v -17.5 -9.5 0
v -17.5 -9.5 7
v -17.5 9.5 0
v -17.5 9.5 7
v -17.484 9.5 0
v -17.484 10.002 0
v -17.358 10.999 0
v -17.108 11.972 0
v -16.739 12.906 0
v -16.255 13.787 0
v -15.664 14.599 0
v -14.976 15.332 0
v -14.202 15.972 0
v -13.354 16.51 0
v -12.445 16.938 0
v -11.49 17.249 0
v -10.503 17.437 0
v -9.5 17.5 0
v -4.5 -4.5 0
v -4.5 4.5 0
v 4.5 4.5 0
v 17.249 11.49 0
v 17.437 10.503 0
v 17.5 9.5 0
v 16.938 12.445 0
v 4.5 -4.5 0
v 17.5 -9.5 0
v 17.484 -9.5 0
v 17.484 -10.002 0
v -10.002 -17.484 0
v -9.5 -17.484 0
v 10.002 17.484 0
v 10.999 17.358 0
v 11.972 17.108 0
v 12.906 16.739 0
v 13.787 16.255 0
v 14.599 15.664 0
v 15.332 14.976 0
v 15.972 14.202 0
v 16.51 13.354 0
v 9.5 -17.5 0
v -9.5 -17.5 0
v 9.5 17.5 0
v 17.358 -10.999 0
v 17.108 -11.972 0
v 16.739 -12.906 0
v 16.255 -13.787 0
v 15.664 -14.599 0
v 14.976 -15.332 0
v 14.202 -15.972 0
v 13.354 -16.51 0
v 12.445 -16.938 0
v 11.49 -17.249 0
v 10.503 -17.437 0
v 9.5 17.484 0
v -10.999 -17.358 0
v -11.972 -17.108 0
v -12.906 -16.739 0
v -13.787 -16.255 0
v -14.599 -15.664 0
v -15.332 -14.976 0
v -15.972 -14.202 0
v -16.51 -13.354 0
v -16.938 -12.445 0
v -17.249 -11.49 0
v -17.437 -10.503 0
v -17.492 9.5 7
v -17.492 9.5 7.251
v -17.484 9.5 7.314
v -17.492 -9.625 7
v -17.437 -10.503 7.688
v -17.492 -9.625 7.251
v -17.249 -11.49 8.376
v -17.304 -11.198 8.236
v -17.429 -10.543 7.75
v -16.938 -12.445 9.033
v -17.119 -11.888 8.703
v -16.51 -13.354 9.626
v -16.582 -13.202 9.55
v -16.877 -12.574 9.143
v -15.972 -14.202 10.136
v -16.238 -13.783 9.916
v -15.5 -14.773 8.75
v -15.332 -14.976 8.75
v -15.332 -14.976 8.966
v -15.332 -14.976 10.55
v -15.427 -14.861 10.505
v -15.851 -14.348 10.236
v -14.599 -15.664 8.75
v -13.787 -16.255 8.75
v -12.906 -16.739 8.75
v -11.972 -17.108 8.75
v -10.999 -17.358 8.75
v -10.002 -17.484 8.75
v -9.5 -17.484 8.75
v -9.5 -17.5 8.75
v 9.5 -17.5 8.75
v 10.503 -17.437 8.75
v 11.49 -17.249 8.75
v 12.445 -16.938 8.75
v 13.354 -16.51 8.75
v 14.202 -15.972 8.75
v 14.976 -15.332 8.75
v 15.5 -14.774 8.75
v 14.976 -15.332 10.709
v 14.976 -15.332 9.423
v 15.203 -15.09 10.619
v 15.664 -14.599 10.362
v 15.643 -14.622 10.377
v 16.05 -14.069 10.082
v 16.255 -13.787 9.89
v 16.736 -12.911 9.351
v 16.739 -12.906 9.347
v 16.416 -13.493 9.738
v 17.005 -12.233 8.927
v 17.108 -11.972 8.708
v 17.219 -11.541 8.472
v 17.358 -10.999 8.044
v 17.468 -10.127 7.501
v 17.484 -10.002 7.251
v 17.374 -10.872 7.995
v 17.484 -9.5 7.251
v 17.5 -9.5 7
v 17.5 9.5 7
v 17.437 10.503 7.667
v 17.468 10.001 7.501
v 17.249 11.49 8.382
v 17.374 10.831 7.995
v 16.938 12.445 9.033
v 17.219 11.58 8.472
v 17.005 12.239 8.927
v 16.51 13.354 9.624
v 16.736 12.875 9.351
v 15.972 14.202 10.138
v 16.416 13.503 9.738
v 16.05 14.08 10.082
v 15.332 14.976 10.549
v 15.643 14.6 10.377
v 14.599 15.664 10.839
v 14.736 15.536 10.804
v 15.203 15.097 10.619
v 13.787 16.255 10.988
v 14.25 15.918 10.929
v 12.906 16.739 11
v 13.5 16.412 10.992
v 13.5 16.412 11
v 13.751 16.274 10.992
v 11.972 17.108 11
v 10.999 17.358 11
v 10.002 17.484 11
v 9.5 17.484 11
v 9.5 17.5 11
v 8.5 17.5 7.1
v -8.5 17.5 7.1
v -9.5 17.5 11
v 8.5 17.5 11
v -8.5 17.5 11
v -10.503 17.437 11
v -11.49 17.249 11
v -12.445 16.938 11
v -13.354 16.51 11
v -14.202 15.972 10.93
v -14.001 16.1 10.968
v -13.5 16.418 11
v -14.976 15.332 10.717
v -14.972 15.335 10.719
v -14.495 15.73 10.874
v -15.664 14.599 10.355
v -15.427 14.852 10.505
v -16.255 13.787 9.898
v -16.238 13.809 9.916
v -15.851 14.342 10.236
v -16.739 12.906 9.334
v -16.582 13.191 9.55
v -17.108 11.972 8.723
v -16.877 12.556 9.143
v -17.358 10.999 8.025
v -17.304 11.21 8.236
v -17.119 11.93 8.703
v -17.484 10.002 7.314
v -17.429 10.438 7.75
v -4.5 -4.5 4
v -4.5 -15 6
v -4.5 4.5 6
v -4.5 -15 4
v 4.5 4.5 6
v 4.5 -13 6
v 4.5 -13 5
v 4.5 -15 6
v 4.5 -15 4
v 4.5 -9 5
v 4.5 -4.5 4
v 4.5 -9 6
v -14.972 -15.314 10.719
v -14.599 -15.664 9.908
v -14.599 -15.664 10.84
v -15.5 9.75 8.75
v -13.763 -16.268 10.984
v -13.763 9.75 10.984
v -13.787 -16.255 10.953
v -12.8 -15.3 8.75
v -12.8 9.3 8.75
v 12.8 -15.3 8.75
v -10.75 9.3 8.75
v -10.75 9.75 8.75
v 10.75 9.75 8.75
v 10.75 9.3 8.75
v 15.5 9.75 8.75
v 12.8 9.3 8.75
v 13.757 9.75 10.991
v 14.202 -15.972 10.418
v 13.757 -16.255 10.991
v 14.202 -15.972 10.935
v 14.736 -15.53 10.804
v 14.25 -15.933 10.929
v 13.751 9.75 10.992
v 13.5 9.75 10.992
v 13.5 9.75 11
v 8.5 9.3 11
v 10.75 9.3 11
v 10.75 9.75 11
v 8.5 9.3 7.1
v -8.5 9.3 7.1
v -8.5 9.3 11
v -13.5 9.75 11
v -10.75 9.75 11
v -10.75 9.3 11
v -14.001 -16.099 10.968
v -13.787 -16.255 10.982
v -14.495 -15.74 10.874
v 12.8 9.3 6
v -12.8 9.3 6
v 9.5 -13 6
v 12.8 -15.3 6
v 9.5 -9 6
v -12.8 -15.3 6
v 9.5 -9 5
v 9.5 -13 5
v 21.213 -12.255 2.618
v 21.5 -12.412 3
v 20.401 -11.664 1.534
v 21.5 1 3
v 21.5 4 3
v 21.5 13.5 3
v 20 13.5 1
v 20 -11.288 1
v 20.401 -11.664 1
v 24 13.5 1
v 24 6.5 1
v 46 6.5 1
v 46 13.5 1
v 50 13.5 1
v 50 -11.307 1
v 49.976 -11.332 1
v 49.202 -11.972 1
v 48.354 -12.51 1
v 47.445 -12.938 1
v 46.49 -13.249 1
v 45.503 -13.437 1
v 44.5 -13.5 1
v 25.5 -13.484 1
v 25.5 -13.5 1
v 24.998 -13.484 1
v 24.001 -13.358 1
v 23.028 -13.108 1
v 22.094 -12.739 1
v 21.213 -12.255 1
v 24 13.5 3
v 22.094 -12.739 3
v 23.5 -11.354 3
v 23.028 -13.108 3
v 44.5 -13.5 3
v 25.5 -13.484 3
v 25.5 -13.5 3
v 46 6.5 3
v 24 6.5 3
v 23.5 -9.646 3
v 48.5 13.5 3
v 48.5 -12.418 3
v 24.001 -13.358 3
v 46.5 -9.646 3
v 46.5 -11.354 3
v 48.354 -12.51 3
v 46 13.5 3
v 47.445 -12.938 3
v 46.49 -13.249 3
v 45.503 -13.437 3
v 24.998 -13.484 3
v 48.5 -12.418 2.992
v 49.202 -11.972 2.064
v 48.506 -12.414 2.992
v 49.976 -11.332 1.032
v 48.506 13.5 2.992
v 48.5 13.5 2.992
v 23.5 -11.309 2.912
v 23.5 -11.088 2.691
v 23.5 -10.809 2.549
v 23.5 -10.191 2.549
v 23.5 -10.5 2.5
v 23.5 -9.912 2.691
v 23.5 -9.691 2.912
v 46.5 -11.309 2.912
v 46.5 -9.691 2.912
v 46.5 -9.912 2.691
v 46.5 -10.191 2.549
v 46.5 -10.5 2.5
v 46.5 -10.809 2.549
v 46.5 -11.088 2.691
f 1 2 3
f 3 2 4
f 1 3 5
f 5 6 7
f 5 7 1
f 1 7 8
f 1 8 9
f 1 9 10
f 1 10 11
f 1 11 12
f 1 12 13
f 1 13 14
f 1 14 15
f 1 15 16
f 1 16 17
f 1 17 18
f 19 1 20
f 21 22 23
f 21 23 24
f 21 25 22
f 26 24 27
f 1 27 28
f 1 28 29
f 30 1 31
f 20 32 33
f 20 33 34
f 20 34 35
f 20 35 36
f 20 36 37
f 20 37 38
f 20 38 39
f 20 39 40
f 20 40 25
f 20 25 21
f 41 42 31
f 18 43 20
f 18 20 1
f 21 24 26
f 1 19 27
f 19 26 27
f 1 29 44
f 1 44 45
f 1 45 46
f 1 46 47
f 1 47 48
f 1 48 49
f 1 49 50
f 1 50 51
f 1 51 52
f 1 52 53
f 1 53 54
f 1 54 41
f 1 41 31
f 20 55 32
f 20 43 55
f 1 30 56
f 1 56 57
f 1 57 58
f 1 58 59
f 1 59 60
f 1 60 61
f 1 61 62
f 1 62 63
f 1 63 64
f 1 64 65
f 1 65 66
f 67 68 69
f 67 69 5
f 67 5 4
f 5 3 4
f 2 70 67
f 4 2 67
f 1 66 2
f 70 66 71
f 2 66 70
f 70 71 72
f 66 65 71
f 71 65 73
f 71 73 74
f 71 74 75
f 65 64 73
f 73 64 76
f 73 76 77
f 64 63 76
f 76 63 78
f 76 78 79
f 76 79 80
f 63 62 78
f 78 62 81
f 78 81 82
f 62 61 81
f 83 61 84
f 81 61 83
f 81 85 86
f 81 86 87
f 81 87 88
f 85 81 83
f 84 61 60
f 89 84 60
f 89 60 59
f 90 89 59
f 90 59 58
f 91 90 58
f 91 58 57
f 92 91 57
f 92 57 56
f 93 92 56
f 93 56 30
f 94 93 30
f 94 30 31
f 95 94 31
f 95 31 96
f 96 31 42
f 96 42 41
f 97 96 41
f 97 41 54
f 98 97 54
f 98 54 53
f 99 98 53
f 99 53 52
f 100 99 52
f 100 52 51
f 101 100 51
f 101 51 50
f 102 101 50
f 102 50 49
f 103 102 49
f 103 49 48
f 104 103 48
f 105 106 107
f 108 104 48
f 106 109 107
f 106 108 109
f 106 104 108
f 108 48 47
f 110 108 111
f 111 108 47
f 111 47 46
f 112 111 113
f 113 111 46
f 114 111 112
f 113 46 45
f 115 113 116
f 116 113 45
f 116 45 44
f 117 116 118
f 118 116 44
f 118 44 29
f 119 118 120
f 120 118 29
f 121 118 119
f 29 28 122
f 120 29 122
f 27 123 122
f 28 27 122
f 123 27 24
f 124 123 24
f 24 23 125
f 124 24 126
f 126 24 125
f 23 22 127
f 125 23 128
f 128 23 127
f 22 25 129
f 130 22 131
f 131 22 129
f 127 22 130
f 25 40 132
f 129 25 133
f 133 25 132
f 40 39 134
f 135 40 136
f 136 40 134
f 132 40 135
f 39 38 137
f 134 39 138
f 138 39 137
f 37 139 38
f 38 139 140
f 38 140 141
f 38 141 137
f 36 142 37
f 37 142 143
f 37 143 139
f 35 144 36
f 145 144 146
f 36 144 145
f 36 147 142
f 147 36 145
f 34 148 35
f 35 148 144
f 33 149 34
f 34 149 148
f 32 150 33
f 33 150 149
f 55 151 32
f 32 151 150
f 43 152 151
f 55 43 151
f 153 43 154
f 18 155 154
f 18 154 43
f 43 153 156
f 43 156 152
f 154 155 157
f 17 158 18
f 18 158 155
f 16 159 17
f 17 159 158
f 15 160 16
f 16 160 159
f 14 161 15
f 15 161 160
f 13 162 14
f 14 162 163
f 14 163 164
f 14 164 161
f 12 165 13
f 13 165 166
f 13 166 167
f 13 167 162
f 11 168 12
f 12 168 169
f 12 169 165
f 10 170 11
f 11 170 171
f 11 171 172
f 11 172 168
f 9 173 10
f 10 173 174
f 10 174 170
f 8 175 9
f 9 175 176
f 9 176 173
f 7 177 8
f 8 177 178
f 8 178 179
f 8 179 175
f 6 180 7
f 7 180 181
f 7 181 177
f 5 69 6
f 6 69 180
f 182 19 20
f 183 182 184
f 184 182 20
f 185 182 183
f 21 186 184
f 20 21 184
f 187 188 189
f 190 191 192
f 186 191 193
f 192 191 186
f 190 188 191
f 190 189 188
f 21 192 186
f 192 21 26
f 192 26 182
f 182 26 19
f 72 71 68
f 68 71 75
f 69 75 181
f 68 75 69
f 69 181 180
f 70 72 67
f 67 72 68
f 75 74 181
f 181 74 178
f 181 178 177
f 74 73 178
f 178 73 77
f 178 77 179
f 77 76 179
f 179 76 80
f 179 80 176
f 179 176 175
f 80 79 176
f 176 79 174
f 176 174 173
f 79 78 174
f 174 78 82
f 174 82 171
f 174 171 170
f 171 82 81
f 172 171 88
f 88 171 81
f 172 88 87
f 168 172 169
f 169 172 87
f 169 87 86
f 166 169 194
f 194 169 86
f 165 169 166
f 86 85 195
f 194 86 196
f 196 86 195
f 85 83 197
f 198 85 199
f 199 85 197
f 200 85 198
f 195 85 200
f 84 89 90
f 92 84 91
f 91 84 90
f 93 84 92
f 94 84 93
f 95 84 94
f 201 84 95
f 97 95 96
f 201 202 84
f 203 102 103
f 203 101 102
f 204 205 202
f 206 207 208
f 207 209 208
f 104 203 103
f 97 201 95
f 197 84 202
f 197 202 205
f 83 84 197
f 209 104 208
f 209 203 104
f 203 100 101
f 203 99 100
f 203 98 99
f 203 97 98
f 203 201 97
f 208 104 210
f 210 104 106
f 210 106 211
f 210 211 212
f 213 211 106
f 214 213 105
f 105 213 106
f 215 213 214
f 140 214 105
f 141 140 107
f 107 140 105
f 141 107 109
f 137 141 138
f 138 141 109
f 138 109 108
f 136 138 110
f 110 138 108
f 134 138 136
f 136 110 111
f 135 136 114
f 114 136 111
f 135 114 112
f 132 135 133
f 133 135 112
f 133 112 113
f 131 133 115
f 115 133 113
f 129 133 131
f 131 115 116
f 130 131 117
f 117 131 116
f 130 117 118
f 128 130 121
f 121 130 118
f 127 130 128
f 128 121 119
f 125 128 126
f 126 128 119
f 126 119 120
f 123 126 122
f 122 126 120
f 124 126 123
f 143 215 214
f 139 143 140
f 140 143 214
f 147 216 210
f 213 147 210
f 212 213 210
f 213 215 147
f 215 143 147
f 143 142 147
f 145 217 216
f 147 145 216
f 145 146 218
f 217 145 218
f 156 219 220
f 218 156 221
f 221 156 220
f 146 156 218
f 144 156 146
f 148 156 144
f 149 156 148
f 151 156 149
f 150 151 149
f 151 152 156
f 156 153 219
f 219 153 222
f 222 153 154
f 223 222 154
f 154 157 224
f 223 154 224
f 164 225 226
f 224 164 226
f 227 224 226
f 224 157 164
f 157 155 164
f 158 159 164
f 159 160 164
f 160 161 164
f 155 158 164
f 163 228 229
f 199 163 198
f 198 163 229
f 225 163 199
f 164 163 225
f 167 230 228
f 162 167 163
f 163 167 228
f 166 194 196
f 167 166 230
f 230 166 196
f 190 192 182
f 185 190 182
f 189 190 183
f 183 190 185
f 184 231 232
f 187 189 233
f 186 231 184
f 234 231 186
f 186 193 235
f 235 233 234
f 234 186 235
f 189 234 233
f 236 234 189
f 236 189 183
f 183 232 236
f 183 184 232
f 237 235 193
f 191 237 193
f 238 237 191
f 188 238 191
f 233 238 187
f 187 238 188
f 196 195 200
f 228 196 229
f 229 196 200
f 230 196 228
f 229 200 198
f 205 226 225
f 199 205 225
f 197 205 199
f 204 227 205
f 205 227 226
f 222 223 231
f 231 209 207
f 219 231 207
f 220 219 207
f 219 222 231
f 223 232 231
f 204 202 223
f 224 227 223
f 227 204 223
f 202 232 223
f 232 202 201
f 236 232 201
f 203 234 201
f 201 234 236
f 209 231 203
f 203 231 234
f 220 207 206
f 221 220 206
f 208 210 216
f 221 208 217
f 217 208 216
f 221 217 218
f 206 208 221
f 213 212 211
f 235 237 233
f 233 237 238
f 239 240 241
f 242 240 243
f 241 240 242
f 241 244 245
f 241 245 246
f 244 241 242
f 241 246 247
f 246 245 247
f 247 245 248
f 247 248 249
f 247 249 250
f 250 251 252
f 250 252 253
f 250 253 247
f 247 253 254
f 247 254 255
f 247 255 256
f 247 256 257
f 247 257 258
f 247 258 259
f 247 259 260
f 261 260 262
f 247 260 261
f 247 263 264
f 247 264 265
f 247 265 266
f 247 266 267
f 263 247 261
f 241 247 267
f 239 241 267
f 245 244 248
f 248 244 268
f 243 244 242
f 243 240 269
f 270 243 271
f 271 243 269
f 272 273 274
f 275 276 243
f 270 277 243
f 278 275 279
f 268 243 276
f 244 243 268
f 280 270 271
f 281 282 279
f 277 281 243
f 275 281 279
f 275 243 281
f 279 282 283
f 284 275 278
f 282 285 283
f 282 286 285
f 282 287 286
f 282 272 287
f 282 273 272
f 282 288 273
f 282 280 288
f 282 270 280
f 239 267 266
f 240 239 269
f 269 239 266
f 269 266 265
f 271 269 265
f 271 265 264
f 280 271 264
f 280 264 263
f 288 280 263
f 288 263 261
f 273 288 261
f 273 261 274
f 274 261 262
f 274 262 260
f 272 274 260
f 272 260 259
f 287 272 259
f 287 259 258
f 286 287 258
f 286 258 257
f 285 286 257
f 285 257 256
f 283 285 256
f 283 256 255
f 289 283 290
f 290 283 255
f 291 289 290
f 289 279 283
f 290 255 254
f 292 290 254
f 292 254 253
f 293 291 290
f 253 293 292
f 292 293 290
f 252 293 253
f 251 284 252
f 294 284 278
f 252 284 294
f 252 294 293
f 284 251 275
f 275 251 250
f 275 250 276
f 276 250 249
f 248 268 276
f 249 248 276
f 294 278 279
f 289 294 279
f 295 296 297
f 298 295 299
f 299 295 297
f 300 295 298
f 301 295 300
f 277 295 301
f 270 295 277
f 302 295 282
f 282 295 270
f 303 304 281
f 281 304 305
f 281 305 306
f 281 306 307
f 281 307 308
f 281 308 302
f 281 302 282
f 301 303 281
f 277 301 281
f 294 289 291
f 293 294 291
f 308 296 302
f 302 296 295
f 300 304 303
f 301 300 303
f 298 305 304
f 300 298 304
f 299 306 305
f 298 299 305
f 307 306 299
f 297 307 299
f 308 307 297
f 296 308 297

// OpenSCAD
// Adapted from: https://github.com/luisibanez/ShapesFor3DPrinting/tree/master/OpenSCA

// For case
width  = 35;  // x
length = 35;  // y
height = 11;  // z

// For camera cover
flex_adapter_width = 22;   // measures 21mm, but w/ a nominal 22mm opening it was still too tight.
cover_width = 27;
cover_height = 2;

// For rounded corners
radius1 = 8;
radius2 = 4;

piCameraAdapter();
// Comment out translate to see
// back cover in place.
translate([width,4,-8])
    piCameraBackCover();


/////////////////////////////////////////////////////////////////////////////////////
// Modules
//

module piCameraBackCoverBevel(length, clearance) {
    c = clearance;
    hh = cover_height / 2;
    hw = ( cover_width / 2 ) + c;
    he = hw + 1.5 + c;
    l = length / 2;
    polyhedron(
        points = [
            [ hw, -l-c, -hh-c ],
            [ hw,  l+c, -hh-c ], 
            [ hw,  l+c, hh ], 
            [ hw, -l-c, hh ],
            [ he, -l-c, -hh-c ],
            [ he,  l+c, -hh-c ] 
            ], 
        faces = [
            [ 5, 1, 0, 4],
            [ 4, 0, 3 ],
            [ 2, 1, 5 ],
            [ 5, 4, 3, 2],
            [ 0, 1, 2, 3],
        ]
    );
}

module piCameraBackCover(for_subtraction=false) {
    indent = ! for_subtraction;
    clearance = for_subtraction ? 0.25 : 0;
    c = 2*clearance;
    cov_l = length-8;
    difference() {
        translate([0,-5,height-cover_height/2])
        difference() {
            translate([0,1,0])
            union() {
                cube(size=[cover_width+c,cov_l+c,cover_height+c],center=true);
                piCameraBackCoverBevel(cov_l, clearance);
                mirror([1,0,0])
                    piCameraBackCoverBevel(cov_l, clearance);
            }
            translate([0,15,0])
                cube(size=[flex_adapter_width-c,15,100],center=true);
            if (indent)
                translate([0,8-length/2,cover_height/2+0.5])
                rotate([0,90,0])
                    cylinder(r=1, h=cover_width-4, center=true, $fn=20);
        }
        if (! for_subtraction) {
            cornerRounding();
        }
    }
}

module cableOpening() {
    w = 17;
    d = 12;
    h = 100;
    translate([-w/2,2+d/2,height-4+0.1])
        cube(size=[w,d,h]);
}

module chipOpening() {
    clearance = 0.5;
    c = 2 * clearance;
    w = 8+c;
    d = 10+c;
    h = 100;
    translate([-w/2, -9.5-d/2, height-7])
        cube(size=[w,d,h]);
}

module ledOpening() {
    clearance = 0.5;
    c = 2 * clearance;
    w = 4+c;
    d = 3+c;
    h = 100;
    translate([7-w/2, -11-d/2, height-6])
        cube(size=[w,d,h]);
}

module lensOpening() {
    clearance = 0.5;
    c = 2 * clearance;
    w = 8+c;
    d = 8+c;
    h = 100;
    translate([-w/2,-d/2,-1])
        cube(size=[w,d,h]);
}

module boardOpening() {
    clearance = 0.3;
    c = 2 * clearance;
    w = 25+c;
    d = 24+c;
    h = 100;
    translate([-w/2,-d/2 - 3, height-5])
        cube(size=[w,d,h]);
}

module cameraFrame() {
    translate([0,0,height/2])
        cube(size=[width,length,height], center=true);
}

module roundedCorner(r) {
    translate([-r, -r, 0])
    difference() {
        translate([0,0,-50])
            cube(size=[r+0.1,r+0.1,100]);
        cylinder(h=100, r=r, $fn=50, center=true);
    }
}

module cornerRounding() {
    // vertical corners
    translate([width/2,length/2,0])
        roundedCorner(radius1);
    translate([-width/2,length/2,0])
    rotate([0,0,90])
        roundedCorner(radius1);
    translate([-width/2,-length/2,0])
    rotate([0,0,180])
        roundedCorner(radius1);
    translate([width/2,-length/2,0])
    rotate([0,0,-90])
        roundedCorner(radius1);

    // top corners
    translate([-width/2,0,height])
    rotate([0,-90,0])
    rotate([90,0,0])
        roundedCorner(radius2);
    translate([width/2,0,height])
    rotate([90,0,0])
        roundedCorner(radius2);
}

module piCameraAdapter() {
    difference() {
        cameraFrame();
        boardOpening();
        chipOpening();
        ledOpening();
        cableOpening();
        lensOpening();
        cornerRounding();
        piCameraBackCover(for_subtraction=true);
    }
}
